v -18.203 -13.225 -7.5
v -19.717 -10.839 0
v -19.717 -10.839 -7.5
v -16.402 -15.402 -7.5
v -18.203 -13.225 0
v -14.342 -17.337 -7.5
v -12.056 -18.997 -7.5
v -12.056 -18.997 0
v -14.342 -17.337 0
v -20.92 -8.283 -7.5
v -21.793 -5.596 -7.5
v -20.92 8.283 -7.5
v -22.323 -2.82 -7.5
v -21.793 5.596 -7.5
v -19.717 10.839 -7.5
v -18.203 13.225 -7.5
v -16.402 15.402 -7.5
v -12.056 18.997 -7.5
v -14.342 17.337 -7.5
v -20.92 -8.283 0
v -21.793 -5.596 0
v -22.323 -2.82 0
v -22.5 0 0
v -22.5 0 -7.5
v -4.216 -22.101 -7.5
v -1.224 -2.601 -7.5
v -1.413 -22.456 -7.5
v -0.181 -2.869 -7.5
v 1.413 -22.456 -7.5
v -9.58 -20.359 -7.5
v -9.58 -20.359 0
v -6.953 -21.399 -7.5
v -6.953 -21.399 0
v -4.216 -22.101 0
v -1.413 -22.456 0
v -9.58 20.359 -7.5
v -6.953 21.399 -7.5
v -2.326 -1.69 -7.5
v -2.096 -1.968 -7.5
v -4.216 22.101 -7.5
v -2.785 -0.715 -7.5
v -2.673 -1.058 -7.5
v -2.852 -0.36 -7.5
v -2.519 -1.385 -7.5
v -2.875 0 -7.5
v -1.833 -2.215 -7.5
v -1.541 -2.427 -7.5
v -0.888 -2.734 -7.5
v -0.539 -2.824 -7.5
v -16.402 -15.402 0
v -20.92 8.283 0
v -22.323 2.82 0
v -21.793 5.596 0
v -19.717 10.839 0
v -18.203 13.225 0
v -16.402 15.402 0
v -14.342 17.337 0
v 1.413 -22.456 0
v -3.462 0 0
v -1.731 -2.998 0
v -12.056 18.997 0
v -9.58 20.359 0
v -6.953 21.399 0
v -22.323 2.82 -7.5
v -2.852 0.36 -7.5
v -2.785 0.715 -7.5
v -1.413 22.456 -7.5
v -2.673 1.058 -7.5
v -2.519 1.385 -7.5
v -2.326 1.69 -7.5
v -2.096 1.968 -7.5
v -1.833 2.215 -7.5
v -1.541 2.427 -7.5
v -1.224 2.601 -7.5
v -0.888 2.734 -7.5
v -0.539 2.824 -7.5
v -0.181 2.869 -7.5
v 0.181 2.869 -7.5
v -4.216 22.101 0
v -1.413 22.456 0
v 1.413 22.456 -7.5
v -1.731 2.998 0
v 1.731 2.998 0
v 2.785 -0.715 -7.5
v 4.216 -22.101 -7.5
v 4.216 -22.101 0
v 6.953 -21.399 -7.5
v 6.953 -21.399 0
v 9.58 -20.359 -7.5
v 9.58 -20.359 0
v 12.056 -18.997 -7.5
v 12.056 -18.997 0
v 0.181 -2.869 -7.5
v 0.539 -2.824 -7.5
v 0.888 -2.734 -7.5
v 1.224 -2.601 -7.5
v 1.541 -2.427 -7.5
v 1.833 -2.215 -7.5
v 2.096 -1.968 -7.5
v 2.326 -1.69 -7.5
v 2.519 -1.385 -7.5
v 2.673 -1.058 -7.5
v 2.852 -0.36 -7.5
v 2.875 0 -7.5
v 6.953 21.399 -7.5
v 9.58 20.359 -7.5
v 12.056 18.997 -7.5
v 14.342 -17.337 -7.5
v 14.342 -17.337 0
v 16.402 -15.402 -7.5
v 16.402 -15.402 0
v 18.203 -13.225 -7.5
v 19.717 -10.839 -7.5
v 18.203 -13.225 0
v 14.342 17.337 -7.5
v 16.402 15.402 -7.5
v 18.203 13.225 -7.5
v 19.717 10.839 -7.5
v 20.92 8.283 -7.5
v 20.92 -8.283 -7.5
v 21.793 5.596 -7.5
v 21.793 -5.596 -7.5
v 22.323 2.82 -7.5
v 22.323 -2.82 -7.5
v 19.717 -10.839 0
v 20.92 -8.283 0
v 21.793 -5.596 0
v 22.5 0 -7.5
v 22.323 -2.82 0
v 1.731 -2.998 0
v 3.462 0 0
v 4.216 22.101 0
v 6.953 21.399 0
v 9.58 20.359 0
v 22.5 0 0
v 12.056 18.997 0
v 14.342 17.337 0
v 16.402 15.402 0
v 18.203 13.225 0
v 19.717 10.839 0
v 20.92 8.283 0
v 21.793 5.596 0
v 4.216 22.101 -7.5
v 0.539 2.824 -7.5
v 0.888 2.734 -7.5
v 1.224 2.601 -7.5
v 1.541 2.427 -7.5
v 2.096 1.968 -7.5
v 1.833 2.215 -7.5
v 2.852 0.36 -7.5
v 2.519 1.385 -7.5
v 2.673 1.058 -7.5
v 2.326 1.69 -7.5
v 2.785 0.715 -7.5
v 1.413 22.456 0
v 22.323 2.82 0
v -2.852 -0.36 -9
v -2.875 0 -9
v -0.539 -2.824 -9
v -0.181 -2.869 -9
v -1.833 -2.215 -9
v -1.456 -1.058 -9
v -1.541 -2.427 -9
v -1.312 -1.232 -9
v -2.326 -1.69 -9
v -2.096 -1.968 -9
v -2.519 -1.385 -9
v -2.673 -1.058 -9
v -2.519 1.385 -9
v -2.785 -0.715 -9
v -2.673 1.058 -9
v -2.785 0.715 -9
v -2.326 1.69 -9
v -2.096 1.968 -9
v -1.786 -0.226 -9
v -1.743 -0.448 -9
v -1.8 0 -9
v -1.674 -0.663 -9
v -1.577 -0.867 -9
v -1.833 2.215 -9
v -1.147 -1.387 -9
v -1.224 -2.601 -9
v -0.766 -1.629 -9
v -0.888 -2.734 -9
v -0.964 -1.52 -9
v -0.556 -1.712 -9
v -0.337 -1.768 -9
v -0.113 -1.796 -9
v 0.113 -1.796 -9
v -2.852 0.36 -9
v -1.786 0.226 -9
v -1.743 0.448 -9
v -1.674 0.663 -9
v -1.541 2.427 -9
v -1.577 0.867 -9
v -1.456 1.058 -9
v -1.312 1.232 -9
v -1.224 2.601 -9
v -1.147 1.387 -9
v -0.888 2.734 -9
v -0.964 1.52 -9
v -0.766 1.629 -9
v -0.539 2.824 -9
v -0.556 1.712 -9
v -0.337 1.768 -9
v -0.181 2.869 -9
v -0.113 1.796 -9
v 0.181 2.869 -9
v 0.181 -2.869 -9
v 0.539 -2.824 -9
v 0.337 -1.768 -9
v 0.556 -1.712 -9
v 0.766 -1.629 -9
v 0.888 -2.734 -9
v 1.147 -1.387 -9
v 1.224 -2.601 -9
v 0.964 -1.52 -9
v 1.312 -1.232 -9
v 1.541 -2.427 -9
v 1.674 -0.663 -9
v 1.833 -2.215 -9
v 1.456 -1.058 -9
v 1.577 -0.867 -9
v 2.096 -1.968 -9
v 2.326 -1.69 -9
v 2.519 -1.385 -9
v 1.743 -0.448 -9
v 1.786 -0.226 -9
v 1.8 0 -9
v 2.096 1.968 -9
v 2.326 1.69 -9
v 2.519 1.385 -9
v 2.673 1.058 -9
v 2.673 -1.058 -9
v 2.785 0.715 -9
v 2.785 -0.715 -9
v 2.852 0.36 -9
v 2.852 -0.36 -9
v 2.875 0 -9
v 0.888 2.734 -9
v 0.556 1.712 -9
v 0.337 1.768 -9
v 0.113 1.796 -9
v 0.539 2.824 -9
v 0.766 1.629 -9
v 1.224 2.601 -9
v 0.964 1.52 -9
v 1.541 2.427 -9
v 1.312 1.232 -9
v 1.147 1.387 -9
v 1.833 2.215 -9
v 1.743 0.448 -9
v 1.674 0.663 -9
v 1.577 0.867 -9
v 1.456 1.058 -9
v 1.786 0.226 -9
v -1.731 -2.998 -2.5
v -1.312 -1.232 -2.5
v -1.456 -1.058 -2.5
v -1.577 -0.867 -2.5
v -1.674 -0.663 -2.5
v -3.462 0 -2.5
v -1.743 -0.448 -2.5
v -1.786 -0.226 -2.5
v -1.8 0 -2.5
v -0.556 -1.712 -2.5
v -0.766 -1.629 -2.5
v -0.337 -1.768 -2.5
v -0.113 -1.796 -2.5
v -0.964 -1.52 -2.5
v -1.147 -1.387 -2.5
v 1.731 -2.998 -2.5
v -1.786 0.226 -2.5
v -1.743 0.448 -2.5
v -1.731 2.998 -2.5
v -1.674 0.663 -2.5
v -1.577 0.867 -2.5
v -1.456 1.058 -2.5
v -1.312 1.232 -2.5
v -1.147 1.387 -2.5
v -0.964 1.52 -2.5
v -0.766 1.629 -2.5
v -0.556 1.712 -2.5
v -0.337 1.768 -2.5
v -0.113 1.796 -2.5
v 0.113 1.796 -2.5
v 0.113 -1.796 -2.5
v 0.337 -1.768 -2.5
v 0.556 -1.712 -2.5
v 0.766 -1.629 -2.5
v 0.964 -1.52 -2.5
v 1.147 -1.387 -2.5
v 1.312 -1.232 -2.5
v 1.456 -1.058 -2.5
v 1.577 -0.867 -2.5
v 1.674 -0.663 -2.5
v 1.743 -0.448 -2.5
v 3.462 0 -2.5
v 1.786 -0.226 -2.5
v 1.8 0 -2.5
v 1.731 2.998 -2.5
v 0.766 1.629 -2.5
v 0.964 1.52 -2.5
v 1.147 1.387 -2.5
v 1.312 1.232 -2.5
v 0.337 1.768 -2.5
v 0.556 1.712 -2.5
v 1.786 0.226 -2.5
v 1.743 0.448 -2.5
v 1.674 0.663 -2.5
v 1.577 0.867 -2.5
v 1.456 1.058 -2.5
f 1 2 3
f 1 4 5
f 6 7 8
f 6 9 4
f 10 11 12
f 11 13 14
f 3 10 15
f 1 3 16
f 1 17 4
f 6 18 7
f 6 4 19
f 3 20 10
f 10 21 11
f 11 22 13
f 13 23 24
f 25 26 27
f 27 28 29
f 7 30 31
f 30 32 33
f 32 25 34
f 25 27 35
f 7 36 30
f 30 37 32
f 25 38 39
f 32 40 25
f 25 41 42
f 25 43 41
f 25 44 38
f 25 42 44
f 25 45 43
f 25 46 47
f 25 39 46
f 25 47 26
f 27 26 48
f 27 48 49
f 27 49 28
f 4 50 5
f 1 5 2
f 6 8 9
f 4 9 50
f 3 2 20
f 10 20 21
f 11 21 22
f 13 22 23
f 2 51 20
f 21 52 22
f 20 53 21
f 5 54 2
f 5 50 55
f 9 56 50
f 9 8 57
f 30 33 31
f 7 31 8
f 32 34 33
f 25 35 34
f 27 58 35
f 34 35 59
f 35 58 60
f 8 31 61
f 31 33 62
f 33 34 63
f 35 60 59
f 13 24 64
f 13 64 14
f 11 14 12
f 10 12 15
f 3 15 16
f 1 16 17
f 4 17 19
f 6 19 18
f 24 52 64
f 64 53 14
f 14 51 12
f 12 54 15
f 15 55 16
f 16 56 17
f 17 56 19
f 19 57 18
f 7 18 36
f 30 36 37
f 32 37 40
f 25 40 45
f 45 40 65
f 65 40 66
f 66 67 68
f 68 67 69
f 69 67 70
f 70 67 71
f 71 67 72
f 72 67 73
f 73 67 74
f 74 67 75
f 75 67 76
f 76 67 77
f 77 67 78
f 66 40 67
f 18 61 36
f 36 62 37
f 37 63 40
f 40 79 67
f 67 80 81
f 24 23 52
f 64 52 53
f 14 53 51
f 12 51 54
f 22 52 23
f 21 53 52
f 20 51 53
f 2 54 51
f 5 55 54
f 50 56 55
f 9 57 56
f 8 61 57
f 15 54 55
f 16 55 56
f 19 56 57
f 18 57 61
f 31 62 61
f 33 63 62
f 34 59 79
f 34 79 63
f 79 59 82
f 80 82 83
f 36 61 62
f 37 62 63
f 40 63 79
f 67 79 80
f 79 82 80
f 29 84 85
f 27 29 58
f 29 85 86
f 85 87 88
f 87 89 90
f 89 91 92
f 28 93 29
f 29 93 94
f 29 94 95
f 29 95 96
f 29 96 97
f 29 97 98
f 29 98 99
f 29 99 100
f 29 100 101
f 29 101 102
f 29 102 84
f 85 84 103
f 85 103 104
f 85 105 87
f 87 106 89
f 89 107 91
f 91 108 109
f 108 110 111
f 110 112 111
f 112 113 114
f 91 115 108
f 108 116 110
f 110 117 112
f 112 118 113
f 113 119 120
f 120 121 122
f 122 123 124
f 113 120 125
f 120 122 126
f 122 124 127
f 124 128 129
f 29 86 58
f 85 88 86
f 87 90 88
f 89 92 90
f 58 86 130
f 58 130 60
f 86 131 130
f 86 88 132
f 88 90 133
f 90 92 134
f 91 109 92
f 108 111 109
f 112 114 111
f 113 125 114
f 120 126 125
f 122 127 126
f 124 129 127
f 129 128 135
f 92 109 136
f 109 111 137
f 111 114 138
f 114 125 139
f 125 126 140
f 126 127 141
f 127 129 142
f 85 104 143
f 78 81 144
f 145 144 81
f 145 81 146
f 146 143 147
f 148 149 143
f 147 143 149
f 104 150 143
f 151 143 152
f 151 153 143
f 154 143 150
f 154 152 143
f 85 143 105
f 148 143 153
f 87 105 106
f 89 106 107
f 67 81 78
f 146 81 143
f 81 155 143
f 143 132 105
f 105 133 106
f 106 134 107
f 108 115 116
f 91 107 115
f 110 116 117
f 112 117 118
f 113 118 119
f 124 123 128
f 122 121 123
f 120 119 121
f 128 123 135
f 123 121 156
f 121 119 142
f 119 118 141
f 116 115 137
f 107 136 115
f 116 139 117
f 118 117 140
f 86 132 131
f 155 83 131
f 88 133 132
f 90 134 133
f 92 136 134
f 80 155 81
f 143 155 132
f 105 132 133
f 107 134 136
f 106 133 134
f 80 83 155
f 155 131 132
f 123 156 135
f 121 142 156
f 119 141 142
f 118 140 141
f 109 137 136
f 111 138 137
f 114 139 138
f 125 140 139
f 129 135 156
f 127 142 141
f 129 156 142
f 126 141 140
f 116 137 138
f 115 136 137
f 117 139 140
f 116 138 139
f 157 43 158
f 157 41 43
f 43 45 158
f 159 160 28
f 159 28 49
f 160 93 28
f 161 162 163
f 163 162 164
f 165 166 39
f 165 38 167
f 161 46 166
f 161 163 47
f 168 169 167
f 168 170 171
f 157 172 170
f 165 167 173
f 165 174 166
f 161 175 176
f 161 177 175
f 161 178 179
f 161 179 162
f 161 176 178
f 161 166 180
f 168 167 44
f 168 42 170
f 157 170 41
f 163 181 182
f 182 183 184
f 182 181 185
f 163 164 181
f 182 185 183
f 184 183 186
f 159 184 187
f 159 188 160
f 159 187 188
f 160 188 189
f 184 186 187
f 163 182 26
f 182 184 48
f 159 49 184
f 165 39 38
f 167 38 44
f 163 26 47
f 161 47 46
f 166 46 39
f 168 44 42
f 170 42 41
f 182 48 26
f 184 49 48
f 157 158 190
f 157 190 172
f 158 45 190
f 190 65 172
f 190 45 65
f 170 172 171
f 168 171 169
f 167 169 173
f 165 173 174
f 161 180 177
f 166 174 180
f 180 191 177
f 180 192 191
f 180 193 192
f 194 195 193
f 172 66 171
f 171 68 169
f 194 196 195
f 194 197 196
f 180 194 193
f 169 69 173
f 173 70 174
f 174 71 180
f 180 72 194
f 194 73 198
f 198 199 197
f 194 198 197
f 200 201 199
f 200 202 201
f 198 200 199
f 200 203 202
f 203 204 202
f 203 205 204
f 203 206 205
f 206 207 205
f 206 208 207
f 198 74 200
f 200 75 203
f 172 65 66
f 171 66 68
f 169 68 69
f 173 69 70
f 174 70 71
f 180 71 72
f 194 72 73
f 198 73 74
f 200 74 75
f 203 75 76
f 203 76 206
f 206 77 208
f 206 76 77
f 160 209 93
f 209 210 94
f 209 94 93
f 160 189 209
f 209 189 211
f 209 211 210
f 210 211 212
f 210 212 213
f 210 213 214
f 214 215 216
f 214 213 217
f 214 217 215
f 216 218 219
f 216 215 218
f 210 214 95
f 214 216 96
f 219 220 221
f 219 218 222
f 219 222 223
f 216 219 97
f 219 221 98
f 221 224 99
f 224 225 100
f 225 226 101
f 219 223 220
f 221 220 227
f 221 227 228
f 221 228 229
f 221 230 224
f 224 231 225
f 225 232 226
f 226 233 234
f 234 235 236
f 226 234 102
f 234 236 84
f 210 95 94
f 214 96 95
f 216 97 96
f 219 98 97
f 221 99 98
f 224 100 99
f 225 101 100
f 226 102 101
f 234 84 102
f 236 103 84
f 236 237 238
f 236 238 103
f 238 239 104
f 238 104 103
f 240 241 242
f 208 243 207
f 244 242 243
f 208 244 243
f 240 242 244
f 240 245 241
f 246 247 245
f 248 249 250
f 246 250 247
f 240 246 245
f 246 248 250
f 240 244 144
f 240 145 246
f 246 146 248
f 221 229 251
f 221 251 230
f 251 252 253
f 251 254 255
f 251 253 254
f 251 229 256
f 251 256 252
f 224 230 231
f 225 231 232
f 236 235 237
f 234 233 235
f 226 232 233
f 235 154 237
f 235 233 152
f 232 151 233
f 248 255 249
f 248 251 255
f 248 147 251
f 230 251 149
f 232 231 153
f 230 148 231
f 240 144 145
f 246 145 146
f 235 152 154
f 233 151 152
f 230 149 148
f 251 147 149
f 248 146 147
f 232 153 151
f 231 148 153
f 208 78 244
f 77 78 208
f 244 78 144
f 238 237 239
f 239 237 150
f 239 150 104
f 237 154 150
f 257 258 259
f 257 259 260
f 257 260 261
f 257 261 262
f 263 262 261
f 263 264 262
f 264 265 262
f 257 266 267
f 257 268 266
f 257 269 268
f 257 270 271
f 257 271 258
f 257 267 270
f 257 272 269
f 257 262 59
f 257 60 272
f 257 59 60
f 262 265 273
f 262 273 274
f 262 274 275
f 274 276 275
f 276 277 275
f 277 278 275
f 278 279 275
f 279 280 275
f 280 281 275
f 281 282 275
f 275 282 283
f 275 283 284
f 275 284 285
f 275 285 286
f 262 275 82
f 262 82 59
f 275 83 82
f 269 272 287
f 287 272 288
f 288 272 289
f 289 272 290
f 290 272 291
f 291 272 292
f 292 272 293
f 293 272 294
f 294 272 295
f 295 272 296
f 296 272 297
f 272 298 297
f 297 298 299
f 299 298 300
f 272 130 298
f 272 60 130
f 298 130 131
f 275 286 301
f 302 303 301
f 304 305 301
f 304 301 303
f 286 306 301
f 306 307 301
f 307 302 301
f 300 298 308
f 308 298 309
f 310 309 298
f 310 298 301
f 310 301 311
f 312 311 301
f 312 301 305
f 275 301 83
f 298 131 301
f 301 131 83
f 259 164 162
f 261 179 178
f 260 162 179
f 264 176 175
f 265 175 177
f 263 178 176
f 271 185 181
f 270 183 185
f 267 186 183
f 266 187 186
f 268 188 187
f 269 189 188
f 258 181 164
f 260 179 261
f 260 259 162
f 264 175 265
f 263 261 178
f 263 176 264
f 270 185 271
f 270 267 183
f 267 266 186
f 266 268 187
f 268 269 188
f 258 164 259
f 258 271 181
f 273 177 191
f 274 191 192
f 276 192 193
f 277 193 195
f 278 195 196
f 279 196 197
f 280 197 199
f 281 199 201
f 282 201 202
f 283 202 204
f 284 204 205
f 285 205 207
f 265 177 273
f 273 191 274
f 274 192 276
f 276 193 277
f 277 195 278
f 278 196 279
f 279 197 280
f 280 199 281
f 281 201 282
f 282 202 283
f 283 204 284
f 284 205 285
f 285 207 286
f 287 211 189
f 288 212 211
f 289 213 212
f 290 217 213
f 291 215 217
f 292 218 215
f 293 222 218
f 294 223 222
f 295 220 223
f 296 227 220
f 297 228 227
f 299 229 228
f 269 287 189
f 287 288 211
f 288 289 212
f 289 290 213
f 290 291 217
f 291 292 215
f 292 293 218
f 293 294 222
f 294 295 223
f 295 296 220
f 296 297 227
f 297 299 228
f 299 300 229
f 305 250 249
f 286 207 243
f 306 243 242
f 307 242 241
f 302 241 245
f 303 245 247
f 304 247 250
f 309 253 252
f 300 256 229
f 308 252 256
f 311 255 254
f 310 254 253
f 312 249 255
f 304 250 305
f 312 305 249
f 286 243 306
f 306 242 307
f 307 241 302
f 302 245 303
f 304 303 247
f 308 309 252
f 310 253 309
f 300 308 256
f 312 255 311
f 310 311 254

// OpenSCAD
$fn = 50;

difference() {
	union() {
		translate(v = [0, 0, -7.5]) {
			cylinder(h = 7.5, r = 22.5);
		}
		#translate(v = [0, 0, -9.0]) {
			cylinder(h = 9, r = 2.875);
		}
	}
	union() {
		translate(v = [0, 0, 0]) {
			rotate(a = [0, 0, 0]) {
				difference() {
					union() {
						translate(v = [0, 0, -2.5]) {
							linear_extrude(height = 2.5) {
								polygon(points = [[3.4619999999999997, 0.0], [1.7310000000000003, 2.9981799479017264], [-1.7309999999999992, 2.9981799479017264], [-3.4619999999999997, 4.2397272186481365e-16], [-1.7310000000000014, -2.998179947901726], [1.7309999999999977, -2.9981799479017277]]);
							}
						}
					}
					union();
				}
			}
		}
		#translate(v = [0, 0, -100.0]) {
			cylinder(h = 200, r = 1.8);
		}
	}
}
